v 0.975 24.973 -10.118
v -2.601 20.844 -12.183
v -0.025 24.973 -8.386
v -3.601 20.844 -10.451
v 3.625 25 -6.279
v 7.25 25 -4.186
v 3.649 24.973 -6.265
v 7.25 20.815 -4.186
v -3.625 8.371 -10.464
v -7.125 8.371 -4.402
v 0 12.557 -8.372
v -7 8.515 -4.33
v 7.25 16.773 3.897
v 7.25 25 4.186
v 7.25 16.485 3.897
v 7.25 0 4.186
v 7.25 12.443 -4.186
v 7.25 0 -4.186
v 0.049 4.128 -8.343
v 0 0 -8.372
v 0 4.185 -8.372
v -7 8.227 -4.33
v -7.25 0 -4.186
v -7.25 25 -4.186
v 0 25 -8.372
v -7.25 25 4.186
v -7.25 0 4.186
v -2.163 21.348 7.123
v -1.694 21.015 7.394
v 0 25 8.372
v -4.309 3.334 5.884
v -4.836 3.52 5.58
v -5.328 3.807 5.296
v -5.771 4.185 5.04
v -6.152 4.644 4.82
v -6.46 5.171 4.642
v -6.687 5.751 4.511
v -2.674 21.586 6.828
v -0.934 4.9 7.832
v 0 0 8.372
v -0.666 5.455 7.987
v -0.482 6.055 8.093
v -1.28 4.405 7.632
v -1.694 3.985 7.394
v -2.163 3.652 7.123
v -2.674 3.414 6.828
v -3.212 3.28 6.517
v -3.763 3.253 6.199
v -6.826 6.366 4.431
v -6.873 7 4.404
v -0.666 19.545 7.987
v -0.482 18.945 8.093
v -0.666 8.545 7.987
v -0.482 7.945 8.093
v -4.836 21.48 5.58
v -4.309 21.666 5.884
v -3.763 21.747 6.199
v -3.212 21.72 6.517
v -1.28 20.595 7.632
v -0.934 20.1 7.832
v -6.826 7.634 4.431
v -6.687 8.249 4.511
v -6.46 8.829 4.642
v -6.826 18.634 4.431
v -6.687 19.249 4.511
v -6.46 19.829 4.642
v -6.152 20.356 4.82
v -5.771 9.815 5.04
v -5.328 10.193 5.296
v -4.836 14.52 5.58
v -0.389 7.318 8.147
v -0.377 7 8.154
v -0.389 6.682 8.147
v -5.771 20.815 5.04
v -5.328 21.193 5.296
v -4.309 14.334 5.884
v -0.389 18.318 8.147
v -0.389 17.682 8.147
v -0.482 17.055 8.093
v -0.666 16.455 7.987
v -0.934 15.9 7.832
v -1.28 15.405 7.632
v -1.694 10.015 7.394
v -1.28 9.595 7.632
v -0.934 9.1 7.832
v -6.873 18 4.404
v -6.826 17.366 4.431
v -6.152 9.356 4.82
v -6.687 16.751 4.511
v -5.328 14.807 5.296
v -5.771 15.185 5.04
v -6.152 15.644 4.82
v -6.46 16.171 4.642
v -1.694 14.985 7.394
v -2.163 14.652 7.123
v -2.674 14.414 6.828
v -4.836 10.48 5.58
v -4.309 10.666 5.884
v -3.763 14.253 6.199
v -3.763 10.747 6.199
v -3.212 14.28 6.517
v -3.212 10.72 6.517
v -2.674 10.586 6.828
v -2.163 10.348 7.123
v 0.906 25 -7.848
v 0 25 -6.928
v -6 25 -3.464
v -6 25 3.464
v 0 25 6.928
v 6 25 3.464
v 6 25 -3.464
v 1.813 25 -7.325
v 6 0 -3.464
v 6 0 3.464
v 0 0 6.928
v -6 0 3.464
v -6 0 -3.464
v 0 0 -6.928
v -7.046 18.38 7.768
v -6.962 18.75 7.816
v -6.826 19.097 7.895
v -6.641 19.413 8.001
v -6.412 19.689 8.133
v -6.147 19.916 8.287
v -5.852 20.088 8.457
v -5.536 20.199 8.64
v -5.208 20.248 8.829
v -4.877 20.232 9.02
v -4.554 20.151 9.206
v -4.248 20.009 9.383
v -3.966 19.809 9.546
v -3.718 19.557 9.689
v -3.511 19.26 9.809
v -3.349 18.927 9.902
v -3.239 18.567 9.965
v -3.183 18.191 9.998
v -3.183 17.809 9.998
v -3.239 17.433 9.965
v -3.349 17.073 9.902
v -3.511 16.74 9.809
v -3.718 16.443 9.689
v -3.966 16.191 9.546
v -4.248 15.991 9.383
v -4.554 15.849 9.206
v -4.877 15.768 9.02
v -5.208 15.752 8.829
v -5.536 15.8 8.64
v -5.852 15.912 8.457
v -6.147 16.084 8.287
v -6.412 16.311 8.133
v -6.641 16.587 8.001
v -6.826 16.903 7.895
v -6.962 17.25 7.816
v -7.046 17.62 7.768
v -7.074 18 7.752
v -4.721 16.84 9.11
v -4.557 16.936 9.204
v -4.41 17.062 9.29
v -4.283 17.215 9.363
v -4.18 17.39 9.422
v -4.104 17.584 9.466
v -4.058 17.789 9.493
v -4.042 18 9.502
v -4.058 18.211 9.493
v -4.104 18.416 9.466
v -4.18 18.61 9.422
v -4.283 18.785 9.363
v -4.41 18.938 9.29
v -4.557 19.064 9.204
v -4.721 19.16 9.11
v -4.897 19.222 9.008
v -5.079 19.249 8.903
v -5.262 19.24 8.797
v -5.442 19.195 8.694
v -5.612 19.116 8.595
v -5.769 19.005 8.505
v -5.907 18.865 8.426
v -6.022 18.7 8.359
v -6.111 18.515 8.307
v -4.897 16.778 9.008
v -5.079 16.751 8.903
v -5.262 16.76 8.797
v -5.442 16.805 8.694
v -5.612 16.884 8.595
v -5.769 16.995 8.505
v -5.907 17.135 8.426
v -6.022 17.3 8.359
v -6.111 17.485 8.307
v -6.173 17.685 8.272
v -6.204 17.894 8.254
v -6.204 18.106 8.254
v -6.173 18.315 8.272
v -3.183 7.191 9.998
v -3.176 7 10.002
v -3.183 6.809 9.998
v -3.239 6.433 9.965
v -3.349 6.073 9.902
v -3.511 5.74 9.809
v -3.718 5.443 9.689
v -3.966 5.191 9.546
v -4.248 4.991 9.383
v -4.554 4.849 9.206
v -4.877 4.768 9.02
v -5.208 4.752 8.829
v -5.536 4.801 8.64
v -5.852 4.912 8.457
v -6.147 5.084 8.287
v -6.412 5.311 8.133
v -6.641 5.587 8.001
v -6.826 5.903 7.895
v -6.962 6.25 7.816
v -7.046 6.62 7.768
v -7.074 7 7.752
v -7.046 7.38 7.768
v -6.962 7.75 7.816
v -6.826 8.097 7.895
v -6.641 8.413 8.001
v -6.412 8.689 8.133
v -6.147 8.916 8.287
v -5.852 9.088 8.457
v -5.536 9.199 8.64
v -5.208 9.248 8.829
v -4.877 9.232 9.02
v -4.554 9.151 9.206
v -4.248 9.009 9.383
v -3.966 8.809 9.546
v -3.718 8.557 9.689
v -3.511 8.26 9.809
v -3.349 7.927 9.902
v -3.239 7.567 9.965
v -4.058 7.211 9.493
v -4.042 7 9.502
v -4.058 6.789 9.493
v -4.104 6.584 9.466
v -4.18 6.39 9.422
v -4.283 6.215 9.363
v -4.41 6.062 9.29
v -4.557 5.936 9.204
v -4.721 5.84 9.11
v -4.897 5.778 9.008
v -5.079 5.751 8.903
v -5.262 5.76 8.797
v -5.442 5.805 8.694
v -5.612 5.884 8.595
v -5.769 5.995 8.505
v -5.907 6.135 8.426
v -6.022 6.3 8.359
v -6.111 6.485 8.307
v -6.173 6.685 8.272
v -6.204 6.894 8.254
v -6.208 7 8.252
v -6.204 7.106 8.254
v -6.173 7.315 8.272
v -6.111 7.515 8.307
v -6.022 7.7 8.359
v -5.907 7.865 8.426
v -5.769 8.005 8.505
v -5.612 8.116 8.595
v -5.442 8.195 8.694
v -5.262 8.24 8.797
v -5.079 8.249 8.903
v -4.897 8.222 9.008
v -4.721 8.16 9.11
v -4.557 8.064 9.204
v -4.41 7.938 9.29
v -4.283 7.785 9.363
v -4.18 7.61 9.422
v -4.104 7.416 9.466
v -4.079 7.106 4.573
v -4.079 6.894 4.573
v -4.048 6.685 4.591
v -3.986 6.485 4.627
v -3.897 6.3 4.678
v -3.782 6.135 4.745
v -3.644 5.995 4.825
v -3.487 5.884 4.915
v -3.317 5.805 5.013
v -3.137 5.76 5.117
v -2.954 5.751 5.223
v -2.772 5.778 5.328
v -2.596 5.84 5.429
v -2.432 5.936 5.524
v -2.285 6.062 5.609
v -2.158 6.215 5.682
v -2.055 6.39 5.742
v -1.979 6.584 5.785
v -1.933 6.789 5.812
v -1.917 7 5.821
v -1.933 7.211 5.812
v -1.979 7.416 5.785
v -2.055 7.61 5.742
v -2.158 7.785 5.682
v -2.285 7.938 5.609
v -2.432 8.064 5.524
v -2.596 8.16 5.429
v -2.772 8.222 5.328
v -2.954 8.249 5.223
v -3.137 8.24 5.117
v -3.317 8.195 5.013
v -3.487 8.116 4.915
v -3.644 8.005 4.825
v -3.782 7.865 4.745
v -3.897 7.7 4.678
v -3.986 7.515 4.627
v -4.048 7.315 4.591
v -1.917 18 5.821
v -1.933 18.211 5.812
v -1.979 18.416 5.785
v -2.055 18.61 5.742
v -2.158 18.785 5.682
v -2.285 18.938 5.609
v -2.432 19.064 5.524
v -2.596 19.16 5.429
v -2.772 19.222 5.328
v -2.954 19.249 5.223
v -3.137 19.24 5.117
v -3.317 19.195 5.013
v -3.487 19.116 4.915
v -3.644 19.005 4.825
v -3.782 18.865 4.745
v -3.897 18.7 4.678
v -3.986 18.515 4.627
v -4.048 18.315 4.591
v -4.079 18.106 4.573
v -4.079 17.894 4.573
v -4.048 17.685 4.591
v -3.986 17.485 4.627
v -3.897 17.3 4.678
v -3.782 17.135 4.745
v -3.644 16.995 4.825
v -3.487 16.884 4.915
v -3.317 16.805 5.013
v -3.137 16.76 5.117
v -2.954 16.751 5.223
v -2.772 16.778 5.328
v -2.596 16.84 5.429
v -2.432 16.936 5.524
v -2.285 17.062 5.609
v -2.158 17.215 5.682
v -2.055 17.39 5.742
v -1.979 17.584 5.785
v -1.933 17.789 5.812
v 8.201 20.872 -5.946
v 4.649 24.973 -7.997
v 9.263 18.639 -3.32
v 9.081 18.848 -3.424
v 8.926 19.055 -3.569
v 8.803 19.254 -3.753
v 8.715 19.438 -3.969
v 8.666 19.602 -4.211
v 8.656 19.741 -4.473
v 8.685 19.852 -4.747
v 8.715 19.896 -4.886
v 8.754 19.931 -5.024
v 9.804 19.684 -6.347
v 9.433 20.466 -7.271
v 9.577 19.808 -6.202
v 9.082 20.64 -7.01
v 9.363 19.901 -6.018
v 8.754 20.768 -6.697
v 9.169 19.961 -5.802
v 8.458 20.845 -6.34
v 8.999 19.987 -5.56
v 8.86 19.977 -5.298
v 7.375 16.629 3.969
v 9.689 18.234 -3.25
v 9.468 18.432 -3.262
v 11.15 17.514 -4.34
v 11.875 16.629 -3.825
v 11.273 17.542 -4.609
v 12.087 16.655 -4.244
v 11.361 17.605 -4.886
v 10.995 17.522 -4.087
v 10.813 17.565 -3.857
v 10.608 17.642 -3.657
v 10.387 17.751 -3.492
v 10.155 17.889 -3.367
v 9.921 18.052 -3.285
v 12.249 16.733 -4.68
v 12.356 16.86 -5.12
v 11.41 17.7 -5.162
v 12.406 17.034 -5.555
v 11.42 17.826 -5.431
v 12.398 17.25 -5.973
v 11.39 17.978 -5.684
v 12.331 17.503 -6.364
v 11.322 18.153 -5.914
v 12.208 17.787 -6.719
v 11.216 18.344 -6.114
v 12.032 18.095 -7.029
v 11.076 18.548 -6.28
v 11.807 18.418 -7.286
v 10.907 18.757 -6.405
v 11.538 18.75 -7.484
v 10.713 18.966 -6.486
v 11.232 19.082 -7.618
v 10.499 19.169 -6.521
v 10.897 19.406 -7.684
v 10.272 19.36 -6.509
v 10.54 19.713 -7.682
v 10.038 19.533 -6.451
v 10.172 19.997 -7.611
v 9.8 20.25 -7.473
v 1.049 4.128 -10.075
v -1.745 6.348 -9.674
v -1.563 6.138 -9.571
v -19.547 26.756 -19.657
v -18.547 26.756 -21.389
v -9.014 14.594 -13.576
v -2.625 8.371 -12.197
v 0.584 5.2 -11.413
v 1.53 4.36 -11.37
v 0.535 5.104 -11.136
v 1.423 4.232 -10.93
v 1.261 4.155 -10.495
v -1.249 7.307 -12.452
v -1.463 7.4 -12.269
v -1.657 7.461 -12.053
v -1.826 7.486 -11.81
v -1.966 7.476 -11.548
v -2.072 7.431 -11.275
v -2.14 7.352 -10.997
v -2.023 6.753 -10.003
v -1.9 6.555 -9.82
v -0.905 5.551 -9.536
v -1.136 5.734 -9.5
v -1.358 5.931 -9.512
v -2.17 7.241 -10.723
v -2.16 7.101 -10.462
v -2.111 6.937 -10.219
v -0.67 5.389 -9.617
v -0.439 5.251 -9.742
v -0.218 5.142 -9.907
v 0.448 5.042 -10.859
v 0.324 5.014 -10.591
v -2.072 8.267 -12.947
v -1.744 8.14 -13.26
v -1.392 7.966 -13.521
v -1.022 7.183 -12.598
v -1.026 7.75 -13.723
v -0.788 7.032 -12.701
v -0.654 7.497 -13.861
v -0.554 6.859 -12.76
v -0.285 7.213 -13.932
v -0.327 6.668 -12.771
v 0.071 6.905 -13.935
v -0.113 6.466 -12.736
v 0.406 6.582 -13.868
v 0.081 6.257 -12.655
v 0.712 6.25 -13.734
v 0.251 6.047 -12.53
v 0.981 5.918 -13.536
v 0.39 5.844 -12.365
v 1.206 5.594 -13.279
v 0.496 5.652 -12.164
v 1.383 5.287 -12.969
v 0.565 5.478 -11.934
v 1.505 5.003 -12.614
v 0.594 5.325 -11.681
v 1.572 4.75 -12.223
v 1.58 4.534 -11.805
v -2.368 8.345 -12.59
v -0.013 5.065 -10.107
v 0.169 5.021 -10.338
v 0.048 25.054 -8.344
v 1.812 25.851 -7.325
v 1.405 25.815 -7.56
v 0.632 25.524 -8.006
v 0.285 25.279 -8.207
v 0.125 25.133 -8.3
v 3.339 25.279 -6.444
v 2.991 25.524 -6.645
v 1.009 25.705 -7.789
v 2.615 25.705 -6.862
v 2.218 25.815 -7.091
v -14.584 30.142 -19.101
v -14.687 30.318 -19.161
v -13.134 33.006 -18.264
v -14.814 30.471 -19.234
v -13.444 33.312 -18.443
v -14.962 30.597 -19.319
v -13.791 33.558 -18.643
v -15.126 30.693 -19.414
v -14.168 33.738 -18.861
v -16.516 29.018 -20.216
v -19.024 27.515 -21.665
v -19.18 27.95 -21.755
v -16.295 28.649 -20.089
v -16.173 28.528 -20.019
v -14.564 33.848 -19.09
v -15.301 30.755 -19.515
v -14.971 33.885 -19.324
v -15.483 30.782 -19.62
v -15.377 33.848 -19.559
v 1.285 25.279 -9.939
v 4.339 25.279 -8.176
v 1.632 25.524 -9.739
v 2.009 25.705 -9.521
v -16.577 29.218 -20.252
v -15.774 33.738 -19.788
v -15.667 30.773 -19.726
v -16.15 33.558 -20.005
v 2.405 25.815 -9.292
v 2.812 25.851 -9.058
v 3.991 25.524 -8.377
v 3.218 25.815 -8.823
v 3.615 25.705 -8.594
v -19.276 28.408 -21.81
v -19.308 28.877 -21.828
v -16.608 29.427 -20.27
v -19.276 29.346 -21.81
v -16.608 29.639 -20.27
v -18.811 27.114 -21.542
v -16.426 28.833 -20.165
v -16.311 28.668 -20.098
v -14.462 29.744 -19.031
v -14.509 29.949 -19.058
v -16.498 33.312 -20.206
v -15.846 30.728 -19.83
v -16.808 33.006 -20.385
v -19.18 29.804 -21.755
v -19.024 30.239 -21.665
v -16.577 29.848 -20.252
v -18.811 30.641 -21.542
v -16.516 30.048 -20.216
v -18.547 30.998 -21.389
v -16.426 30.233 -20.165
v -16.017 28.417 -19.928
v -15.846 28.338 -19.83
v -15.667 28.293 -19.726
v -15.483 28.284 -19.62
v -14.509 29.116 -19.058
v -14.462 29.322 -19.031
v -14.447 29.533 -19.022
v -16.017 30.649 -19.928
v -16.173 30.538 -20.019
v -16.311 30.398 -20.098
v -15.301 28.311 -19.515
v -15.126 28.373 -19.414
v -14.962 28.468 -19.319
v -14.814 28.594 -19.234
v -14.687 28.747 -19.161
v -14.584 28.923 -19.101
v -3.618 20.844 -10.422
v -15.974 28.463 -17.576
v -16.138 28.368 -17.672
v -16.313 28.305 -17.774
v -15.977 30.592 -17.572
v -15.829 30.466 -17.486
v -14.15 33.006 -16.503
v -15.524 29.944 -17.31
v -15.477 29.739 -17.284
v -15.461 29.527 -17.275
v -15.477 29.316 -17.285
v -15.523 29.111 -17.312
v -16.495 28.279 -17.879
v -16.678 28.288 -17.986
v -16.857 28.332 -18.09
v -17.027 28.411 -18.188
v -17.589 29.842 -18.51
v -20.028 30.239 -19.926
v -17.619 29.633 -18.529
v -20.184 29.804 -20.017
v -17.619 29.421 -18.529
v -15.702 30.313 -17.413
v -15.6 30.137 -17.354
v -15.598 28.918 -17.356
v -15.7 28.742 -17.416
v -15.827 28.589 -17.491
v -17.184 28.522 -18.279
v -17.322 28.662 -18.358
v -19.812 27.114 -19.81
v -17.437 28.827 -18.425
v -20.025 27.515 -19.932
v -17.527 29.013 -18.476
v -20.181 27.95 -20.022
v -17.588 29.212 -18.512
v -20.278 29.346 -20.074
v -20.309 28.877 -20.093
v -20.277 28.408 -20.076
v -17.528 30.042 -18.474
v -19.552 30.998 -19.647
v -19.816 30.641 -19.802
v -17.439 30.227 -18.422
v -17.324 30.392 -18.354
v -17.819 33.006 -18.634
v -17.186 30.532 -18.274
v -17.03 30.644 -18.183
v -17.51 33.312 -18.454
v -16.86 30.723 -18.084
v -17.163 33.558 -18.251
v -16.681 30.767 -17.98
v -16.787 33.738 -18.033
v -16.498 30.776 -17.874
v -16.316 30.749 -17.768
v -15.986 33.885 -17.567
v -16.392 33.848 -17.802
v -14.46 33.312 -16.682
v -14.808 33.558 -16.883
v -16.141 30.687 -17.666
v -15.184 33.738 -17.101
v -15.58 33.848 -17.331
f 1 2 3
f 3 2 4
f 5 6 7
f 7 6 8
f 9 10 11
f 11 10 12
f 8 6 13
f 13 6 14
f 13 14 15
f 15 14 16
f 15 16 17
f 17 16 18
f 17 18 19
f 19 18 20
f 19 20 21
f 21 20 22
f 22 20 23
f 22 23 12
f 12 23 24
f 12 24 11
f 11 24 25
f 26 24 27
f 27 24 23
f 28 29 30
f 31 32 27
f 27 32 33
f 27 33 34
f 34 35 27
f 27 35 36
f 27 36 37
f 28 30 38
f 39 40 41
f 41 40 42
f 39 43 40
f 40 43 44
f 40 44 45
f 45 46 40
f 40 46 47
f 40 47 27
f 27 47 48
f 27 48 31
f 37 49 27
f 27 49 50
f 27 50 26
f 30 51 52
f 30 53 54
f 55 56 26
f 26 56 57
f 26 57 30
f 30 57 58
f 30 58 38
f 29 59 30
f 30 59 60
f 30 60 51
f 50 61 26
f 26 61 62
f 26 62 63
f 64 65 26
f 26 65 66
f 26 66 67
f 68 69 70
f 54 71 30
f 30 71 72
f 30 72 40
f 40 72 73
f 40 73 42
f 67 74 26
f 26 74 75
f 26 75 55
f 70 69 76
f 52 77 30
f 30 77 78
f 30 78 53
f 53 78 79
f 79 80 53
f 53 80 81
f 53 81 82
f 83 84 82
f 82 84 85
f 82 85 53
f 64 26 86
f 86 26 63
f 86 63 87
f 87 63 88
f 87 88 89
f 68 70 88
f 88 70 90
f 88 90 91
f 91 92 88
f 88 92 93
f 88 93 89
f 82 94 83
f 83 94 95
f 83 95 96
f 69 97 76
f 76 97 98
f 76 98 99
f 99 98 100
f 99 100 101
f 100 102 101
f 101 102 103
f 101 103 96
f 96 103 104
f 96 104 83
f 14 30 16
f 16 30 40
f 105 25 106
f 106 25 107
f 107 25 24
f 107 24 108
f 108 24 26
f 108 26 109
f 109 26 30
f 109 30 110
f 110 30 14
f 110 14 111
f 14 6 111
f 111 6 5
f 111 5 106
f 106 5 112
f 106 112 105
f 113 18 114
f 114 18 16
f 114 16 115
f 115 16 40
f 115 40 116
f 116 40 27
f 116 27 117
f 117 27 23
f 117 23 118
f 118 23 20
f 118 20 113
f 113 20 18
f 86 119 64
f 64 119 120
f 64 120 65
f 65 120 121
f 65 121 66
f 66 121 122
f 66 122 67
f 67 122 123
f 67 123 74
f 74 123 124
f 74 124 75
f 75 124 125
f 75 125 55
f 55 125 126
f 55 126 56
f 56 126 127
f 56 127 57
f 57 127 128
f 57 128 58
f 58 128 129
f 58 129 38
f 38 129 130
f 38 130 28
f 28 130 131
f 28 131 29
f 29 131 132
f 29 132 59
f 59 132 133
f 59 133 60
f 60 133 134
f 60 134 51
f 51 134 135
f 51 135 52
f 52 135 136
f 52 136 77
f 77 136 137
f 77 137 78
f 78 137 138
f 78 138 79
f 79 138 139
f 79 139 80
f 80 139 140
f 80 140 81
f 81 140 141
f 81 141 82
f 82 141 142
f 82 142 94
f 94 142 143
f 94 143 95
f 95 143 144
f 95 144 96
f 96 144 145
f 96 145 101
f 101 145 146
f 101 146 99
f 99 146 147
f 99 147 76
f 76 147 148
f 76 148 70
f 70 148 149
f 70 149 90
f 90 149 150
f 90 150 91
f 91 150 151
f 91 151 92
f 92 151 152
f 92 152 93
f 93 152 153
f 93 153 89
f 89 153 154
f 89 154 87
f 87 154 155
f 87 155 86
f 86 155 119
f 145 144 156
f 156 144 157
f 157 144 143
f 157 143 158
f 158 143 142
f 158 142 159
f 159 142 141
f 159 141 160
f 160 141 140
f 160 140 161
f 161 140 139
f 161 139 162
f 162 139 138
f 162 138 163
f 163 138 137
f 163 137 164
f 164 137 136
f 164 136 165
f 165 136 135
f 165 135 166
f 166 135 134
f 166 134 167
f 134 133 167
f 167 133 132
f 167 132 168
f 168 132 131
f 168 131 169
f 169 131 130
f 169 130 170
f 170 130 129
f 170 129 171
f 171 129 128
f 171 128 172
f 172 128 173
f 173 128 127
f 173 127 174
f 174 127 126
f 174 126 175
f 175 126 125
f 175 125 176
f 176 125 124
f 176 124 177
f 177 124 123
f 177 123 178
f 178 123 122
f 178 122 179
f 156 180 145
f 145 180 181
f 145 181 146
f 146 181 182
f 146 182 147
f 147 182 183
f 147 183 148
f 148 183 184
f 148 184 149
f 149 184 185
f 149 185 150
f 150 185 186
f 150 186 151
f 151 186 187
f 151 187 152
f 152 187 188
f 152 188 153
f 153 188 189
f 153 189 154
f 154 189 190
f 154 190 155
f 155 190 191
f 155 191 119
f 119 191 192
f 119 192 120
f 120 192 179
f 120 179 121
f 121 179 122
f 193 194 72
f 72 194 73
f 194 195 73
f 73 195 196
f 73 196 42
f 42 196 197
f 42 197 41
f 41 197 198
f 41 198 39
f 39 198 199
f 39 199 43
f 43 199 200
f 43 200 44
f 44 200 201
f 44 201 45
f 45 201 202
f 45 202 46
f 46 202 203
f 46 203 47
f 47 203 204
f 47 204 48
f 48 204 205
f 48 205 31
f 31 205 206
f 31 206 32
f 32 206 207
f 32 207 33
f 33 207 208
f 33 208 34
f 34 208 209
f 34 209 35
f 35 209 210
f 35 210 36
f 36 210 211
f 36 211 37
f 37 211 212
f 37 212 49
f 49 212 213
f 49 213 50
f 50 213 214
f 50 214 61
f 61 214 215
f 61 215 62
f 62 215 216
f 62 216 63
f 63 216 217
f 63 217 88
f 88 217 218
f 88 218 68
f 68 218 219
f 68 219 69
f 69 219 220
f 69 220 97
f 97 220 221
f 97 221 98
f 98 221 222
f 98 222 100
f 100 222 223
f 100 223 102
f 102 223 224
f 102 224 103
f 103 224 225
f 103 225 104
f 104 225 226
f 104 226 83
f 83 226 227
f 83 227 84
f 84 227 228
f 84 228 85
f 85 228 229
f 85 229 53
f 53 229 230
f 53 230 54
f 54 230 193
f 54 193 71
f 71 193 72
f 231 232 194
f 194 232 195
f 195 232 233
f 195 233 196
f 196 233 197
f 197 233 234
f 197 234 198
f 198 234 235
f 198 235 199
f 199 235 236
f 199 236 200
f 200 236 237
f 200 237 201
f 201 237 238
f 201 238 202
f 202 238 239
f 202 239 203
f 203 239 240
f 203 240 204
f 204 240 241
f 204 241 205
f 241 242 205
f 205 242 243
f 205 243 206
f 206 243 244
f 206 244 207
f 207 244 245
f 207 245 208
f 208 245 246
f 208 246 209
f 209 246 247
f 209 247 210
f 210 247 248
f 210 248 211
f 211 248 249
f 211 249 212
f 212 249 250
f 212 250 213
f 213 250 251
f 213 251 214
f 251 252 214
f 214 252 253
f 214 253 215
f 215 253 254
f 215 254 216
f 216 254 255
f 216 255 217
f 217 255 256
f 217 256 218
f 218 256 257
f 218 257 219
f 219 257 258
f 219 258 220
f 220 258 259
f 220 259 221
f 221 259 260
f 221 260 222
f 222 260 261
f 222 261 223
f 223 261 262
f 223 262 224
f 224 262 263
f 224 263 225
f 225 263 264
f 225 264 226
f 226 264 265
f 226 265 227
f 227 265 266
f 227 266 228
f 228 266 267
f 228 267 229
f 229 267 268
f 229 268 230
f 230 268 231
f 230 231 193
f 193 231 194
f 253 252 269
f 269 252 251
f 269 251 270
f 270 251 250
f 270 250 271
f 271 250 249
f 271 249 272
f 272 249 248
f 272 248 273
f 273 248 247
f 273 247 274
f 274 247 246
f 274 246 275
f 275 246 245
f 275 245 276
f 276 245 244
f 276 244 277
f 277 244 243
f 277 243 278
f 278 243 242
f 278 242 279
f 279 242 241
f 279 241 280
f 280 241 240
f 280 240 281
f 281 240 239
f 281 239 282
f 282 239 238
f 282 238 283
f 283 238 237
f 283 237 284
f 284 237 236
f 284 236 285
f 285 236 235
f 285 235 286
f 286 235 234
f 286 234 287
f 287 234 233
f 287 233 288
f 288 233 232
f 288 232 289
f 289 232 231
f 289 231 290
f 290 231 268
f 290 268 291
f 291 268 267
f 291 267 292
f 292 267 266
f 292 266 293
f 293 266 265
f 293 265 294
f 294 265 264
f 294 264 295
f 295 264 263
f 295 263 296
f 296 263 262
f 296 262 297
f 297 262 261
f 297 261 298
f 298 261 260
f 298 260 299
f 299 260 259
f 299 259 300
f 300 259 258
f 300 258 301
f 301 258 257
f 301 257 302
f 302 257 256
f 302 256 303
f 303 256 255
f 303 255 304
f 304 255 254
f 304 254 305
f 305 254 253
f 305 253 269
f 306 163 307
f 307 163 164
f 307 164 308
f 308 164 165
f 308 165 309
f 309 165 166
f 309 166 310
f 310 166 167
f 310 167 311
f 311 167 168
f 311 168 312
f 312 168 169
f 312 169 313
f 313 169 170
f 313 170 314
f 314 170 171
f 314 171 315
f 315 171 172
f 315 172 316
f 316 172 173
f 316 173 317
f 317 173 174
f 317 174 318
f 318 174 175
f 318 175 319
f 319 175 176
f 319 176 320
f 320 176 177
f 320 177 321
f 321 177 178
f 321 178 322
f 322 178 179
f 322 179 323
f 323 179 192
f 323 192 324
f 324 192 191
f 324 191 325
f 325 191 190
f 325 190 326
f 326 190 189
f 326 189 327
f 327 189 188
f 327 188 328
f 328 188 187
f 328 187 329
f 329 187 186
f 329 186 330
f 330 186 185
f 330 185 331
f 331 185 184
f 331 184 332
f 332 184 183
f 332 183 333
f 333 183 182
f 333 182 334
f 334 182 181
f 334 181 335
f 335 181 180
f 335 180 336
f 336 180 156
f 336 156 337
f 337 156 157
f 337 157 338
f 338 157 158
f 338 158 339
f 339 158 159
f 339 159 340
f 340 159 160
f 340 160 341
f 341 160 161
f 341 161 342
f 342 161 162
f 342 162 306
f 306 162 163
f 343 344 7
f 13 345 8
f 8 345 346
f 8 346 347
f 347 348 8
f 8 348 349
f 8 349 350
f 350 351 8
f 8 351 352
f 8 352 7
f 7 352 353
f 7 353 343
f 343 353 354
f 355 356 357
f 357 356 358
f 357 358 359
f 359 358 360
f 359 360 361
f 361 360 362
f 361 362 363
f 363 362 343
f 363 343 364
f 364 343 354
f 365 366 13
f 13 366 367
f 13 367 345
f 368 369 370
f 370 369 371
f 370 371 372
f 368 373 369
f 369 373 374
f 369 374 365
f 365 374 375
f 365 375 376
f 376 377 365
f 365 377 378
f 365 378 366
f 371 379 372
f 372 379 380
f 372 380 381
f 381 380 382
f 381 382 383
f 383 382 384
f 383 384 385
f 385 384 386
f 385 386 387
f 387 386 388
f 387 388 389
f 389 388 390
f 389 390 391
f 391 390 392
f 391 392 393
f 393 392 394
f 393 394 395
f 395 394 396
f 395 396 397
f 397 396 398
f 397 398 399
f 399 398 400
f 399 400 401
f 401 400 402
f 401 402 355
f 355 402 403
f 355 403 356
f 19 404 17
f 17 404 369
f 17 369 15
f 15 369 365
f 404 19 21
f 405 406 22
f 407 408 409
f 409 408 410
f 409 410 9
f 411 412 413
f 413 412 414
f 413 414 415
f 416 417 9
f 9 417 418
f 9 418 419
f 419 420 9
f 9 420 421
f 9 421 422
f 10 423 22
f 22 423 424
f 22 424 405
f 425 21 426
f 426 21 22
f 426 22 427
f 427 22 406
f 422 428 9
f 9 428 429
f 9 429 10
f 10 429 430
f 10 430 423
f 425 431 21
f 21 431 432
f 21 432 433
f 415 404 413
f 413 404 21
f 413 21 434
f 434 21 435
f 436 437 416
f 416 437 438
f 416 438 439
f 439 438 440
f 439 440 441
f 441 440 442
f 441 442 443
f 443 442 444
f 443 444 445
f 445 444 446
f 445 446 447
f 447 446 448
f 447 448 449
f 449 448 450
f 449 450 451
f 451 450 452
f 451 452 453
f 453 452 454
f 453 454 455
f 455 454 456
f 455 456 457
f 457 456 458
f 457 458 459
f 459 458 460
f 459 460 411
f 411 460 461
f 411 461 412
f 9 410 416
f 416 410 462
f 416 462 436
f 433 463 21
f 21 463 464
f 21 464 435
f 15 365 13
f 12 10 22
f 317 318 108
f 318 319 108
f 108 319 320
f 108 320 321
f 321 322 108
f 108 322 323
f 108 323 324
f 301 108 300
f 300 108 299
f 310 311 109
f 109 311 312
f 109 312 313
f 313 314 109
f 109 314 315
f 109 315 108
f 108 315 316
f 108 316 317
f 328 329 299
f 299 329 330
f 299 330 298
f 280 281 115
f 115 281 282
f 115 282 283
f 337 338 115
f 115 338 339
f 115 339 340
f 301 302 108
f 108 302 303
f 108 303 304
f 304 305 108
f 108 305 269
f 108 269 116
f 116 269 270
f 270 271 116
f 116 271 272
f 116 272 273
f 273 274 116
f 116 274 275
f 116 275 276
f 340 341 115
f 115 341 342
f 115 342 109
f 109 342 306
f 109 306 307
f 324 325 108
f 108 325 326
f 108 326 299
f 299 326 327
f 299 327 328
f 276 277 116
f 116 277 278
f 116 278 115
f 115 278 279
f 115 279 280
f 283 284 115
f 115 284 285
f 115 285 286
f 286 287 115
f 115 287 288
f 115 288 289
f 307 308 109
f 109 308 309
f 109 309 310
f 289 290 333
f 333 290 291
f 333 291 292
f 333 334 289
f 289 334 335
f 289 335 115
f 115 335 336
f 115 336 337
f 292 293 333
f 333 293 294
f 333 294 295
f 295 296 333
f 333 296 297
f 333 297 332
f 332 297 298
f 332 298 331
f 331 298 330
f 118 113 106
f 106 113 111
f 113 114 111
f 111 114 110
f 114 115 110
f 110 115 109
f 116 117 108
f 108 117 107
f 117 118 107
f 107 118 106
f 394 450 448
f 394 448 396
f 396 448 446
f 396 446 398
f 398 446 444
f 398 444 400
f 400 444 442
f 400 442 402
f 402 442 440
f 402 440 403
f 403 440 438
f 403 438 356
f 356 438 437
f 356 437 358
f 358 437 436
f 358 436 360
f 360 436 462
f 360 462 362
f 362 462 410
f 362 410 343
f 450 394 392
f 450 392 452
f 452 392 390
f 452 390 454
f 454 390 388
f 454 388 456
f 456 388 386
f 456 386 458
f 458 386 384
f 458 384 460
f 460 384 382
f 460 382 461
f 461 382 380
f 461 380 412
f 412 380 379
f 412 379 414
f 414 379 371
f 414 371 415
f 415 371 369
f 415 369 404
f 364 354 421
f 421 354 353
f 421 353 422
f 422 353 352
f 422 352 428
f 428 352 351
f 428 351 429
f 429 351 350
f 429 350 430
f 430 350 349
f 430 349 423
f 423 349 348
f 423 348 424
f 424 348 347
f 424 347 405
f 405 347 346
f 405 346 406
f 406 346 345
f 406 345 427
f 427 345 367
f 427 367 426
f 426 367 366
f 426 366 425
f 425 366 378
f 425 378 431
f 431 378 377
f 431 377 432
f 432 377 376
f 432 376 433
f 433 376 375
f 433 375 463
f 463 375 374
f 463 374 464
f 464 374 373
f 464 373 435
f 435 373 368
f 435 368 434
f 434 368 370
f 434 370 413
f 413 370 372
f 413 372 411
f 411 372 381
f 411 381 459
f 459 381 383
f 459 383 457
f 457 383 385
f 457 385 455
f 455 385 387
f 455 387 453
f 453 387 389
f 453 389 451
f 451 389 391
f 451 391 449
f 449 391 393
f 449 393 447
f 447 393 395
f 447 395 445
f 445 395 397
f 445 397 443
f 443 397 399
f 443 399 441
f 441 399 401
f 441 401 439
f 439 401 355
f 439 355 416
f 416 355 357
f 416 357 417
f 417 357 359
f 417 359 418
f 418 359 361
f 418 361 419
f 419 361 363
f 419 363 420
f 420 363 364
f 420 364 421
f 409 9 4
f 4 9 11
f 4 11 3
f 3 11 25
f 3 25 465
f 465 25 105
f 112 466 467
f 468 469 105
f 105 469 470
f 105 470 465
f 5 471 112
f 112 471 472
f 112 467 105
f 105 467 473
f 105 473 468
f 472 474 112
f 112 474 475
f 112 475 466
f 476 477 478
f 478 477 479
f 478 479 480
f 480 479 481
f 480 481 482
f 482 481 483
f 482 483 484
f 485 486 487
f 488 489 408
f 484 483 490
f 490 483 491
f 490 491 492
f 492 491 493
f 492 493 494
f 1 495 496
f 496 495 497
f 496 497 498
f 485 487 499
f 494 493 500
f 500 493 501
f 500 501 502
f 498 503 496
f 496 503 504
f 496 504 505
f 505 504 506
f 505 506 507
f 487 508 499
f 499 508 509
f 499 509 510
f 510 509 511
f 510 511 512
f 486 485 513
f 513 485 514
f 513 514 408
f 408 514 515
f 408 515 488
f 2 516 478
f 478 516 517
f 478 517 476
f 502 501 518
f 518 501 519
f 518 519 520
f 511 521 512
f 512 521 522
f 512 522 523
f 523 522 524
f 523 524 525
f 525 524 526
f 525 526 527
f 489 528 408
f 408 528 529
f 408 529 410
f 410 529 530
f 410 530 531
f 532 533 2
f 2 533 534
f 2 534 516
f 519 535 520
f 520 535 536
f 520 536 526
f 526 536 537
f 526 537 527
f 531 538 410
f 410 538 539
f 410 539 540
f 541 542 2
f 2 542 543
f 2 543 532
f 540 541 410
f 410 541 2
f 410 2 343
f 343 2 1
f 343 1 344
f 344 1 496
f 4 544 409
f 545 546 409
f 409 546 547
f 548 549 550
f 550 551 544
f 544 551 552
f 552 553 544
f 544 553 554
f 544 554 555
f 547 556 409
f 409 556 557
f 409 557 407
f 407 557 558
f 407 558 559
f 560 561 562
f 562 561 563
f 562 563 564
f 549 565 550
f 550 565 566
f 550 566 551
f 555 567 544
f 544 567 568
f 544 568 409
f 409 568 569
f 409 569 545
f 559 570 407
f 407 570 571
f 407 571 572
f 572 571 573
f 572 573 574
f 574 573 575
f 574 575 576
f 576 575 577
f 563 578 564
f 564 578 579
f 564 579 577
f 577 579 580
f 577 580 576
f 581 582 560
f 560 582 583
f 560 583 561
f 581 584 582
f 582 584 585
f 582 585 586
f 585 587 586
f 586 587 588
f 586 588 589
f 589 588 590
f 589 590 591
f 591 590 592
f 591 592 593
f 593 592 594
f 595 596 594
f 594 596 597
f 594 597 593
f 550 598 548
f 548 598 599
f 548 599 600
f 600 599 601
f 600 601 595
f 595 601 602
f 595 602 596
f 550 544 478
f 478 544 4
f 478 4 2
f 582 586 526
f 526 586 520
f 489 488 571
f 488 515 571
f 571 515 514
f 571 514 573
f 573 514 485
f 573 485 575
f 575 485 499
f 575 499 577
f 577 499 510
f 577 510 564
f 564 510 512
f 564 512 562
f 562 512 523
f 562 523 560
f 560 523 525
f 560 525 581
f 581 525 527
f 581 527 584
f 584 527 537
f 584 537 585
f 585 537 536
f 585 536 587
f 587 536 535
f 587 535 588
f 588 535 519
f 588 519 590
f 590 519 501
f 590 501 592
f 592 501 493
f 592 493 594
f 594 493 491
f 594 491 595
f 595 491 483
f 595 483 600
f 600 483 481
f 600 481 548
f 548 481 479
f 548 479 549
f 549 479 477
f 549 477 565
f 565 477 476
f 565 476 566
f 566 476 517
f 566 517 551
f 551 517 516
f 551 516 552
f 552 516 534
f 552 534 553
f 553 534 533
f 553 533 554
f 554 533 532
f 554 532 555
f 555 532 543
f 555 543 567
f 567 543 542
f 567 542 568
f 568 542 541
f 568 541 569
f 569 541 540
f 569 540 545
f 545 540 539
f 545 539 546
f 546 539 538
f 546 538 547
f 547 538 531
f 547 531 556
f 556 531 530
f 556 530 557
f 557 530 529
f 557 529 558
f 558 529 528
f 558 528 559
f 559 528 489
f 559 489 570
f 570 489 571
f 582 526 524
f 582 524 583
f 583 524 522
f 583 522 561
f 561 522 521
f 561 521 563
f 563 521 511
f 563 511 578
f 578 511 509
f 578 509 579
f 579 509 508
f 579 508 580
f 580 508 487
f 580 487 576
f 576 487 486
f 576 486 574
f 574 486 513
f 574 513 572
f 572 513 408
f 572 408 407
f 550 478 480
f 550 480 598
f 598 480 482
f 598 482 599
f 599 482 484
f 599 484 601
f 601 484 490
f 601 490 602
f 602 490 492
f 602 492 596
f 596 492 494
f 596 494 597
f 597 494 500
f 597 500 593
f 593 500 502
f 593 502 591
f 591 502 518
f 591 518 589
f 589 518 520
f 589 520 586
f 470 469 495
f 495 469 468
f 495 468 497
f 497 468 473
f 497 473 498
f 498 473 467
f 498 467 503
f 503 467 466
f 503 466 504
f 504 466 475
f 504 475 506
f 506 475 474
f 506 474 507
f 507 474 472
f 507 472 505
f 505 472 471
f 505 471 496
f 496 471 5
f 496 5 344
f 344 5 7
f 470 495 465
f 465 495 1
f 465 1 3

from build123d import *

# Parameters (mm, degrees)
RESSALTO_EXTRUS_O1_DEPTH      = 25
ESBO_O3_R                     = 2.25
RESSALTO_EXTRUS_O2_DEPTH      = 3
ESBO_O6_R                     = 1.25
CORTE_EXTRUS_O2_DEPTH         = 10
RESSALTO_EXTRUS_O3_DEPTH      = 5
RESSALTO_EXTRUS_O3_DEPTH_BACK = 7
CORTE_EXTRUS_O1_DEPTH         = 32.980788504
FILETE1_R                     = 3
ESBO_O9_R                     = 1.75
CORTE_EXTRUS_O3_DEPTH         = 32.199307287
RESSALTO_EXTRUS_O4_DEPTH      = 8.8
RESSALTO_EXTRUS_O5_DEPTH      = 20.2
ESBO_O14_R                    = 1.25
CORTE_EXTRUS_O4_DEPTH         = 47.082463565
FILETE2_R                     = 3
FILETE3_R                     = 3


# Some blends are built 0.0001 mm under size
with BuildPart() as part:
    # Esboço1 → Ressalto-extrusão1 (new body)
    with BuildSketch(Plane(origin=(0, 0, 0), x_dir=(1, 0, 0), z_dir=(0, 1, 0))):
        Polygon((7.25, 4.185789452), (0, 8.371578903), (-7.25, 4.185789452), (-7.25, -4.185789452), (0, -8.371578903), (7.25, -4.185789452), align=None)
    extrude(amount=RESSALTO_EXTRUS_O1_DEPTH)

    # Esboço3 → Ressalto-extrusão2 (add)
    with BuildSketch(Plane(origin=(-3.625, 0, 6.278684177), x_dir=(0.8660254037844387, 0, 0.4999999999999999), z_dir=(-0.49999999999999994, 0, 0.8660254037844388))):
        with Locations(Location((0, 7, 0), (0, 0, 180))):
            Circle(ESBO_O3_R)
        with Locations(Location((0, 18, 0), (0, 0, 180))):
            Circle(ESBO_O3_R)
    extrude(amount=RESSALTO_EXTRUS_O2_DEPTH)

    # Esboço4 → Revolução1 (revolve)
    with BuildSketch(Plane(origin=(0, 18, 0), x_dir=(1, 0, 0), z_dir=(0, 1, 0))):
        Polygon((-7.073557159, -7.751760389), (-6.872595264, -4.403684177), (-5.573557159, -5.153684177), align=None)
    revolve(axis=Axis((-2.565266445, 18, 4.443171818), (-0.5000000000000001, 0, 0.8660254037844386)))

    # Esboço5 → Revolução2 (revolve)
    with BuildSketch(Plane(origin=(0, 7, 0), x_dir=(-1, 0, 0), z_dir=(0, -1, 0)), mode=Mode.PRIVATE) as revolu_o2_sk:
        Polygon((7.073557159, -7.751760389), (5.573557159, -5.153684177), (6.872595264, -4.403684177), align=None)
    revolve(revolu_o2_sk.sketch.rotate(Axis((-5.573557159, 7, 9.653684177), (0.4999999999999998, 0, -0.8660254037844388)), 180), axis=Axis((-5.573557159, 7, 9.653684177), (0.4999999999999998, 0, -0.8660254037844388)))

    # Esboço6 → Corte-extrusão2 (cut)
    with BuildSketch(Plane(origin=(-5.125, 0, 8.876760389), x_dir=(0.8660254037844386, 0, 0.5), z_dir=(-0.5000000000000001, 0, 0.8660254037844387))):
        with Locations((0, 18)):
            Circle(ESBO_O6_R)
        with Locations(Location((0, 7, 0), (0, 0, 180))):
            Circle(ESBO_O6_R)
    extrude(amount=-CORTE_EXTRUS_O2_DEPTH, mode=Mode.SUBTRACT)

    # Esboço8 → Ressalto-extrusão3 (add, two sides: drawn at the far end of the back side and taken through both)
    with BuildSketch(Plane(origin=(3.625, 0, -6.278684177), x_dir=(-0.8660254037844386, 0, -0.4999999999999999), z_dir=(0.49999999999999994, 0, -0.8660254037844387)).offset(-RESSALTO_EXTRUS_O3_DEPTH_BACK)):
        Polygon((-4.128938216, 20.871578903), (8.371578903, 8.371061784), (4.128938216, 4.128421097), (-8.371578903, 16.628938216), align=None)
    extrude(amount=RESSALTO_EXTRUS_O3_DEPTH + RESSALTO_EXTRUS_O3_DEPTH_BACK)

    # Esboço2 → Corte-extrusão1 (cut, through all)
    with BuildSketch(Plane(origin=(0, 25, 0), x_dir=(1, 0, 0), z_dir=(0, 1, 0))):
        Polygon((0, 6.92820323), (-6, 3.464101615), (-6, -3.464101615), (0, -6.92820323), (6, -3.464101615), (6, 3.464101615), align=None)
    extrude(amount=-CORTE_EXTRUS_O1_DEPTH, mode=Mode.SUBTRACT)

    # Filete1
    filete1_edges = [part.edges().sort_by_distance(p)[0] for p in [
        (7.962117307, 10.378679656, -9.548151025),
        (4.287882693, 14.621320344, -11.669471368),
    ]]
    fillet(filete1_edges, radius=FILETE1_R - 0.0001)  # a hair under: the kernel refuses the full size

    # Esboço9 → Corte-extrusão3 (cut, through all)
    with BuildSketch(Plane(origin=(-0.000223919, -0.00025856, -0.00012928), x_dir=(0.7905694150420967, -0.547722557505165, -0.27386127875258026), z_dir=(-0.6123724356957922, -0.7071067811865502, -0.3535533905932724))):
        with Locations(Location((-0.996318298, -12.755189134, 0), (0, 0, 17.023866185))):
            Circle(ESBO_O9_R)
    extrude(amount=-CORTE_EXTRUS_O3_DEPTH, mode=Mode.SUBTRACT)

    # Esboço10 → Ressalto-extrusão4 (add)
    with BuildSketch(Plane(origin=(-7.249776081, 8.371320344, -4.185660172), x_dir=(0.7905694150420924, 0.5477225575051679, -0.2738612787525866), z_dir=(-0.6123724356957977, 0.707106781186544, -0.3535533905932755))):
        Polygon((5.849930433, 7.165250453), (4.585019369, 5.616057115), (18.278649783, -5.564745298), (19.543560847, -4.01555196), align=None)
    extrude(amount=RESSALTO_EXTRUS_O4_DEPTH)

    # Esboço13 → Ressalto-extrusão5 (add)
    with BuildSketch(Plane(origin=(-12.638653515, 14.593860018, -7.296930009), x_dir=(0.7905694150420924, 0.547722557505168, -0.27386127875258653), z_dir=(-0.6123724356957978, 0.707106781186544, -0.35355339059327534))):
        Polygon((4.585019369, 5.616057115), (5.849930433, 7.165250453), (12.69674564, 1.574849247), (11.410886615, 0), align=None)
    extrude(amount=RESSALTO_EXTRUS_O5_DEPTH)

    # Esboço14 → Corte-extrusão4 (cut, through all)
    with BuildSketch(Plane(origin=(3.641584315, 0.01920948, -6.268990093), x_dir=(0.8646985820812304, -0.0015391164783120645, 0.5022887548683287), z_dir=(-0.5022911129481685, -0.002649602595281497, 0.8646945226259835))):
        with Locations(Location((-23.342145929, 29.472416585, 0), (0, 0, 0.088185223))):
            Circle(ESBO_O14_R)
    extrude(amount=-CORTE_EXTRUS_O4_DEPTH, mode=Mode.SUBTRACT)

    # Filete2
    filete2_edges = [part.edges().sort_by_distance(p)[0] for p in [
        (-15.479198351, 35.127416998, -18.444075991),
        (-20.883800635, 28.877158438, -21.58354736),
    ]]
    fillet(filete2_edges, radius=FILETE2_R)

    # Filete3
    # the kernel refuses this fillet: 3 mm, written as the material it takes off along each edge
    with BuildSketch(Plane(origin=(1.811887952, 27.094118578, -7.325484907), x_dir=(0.6123724356957967, -0.707106781186545, 0.3535533905932749), z_dir=(0.49999999999999784, -2.3869795029440866e-15, -0.86602540378444))) as filete3_piece_1:
        with BuildLine():
            CenterArc((FILETE3_R, FILETE3_R), FILETE3_R, 180, 90)
            Line((0, FILETE3_R), (0, 0))
            Line((0, 0), (FILETE3_R, 0))
        make_face()
    extrude(amount=9.5, mode=Mode.SUBTRACT)


solid = part.part
